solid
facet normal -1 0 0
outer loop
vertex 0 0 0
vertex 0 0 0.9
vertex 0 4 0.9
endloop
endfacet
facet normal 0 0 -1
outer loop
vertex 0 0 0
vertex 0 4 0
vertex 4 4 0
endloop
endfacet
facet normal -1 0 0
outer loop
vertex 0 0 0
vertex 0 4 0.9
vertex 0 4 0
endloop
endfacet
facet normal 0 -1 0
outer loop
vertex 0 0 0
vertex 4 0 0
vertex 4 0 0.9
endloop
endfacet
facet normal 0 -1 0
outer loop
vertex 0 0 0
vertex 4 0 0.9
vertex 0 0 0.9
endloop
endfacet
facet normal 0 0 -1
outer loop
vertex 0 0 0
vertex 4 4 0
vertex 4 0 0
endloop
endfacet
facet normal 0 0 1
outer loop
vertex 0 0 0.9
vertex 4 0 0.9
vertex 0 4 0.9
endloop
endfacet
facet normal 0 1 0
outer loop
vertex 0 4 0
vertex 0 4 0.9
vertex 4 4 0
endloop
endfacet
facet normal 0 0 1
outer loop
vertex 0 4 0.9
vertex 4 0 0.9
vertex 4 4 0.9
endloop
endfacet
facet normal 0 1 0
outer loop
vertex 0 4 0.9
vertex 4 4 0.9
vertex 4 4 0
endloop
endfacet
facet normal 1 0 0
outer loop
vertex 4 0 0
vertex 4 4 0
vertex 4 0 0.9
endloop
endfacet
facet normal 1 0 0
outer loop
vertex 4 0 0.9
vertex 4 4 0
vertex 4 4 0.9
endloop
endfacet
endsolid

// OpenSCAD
/* Warning, this is a very basic generator with a lot of approximation 
input data : [VQFN, P3A, 4x4x0.9mm, 28, , A, C04-01035A]
generated by com.zoubworld.electronics.cad.model3d.Basic
Date : Sun Feb 15 10:50:49 CET 2026
*/

//body
color("black")
translate([0,0,0])
cube([4.0,4.0,0.9], center=false);
